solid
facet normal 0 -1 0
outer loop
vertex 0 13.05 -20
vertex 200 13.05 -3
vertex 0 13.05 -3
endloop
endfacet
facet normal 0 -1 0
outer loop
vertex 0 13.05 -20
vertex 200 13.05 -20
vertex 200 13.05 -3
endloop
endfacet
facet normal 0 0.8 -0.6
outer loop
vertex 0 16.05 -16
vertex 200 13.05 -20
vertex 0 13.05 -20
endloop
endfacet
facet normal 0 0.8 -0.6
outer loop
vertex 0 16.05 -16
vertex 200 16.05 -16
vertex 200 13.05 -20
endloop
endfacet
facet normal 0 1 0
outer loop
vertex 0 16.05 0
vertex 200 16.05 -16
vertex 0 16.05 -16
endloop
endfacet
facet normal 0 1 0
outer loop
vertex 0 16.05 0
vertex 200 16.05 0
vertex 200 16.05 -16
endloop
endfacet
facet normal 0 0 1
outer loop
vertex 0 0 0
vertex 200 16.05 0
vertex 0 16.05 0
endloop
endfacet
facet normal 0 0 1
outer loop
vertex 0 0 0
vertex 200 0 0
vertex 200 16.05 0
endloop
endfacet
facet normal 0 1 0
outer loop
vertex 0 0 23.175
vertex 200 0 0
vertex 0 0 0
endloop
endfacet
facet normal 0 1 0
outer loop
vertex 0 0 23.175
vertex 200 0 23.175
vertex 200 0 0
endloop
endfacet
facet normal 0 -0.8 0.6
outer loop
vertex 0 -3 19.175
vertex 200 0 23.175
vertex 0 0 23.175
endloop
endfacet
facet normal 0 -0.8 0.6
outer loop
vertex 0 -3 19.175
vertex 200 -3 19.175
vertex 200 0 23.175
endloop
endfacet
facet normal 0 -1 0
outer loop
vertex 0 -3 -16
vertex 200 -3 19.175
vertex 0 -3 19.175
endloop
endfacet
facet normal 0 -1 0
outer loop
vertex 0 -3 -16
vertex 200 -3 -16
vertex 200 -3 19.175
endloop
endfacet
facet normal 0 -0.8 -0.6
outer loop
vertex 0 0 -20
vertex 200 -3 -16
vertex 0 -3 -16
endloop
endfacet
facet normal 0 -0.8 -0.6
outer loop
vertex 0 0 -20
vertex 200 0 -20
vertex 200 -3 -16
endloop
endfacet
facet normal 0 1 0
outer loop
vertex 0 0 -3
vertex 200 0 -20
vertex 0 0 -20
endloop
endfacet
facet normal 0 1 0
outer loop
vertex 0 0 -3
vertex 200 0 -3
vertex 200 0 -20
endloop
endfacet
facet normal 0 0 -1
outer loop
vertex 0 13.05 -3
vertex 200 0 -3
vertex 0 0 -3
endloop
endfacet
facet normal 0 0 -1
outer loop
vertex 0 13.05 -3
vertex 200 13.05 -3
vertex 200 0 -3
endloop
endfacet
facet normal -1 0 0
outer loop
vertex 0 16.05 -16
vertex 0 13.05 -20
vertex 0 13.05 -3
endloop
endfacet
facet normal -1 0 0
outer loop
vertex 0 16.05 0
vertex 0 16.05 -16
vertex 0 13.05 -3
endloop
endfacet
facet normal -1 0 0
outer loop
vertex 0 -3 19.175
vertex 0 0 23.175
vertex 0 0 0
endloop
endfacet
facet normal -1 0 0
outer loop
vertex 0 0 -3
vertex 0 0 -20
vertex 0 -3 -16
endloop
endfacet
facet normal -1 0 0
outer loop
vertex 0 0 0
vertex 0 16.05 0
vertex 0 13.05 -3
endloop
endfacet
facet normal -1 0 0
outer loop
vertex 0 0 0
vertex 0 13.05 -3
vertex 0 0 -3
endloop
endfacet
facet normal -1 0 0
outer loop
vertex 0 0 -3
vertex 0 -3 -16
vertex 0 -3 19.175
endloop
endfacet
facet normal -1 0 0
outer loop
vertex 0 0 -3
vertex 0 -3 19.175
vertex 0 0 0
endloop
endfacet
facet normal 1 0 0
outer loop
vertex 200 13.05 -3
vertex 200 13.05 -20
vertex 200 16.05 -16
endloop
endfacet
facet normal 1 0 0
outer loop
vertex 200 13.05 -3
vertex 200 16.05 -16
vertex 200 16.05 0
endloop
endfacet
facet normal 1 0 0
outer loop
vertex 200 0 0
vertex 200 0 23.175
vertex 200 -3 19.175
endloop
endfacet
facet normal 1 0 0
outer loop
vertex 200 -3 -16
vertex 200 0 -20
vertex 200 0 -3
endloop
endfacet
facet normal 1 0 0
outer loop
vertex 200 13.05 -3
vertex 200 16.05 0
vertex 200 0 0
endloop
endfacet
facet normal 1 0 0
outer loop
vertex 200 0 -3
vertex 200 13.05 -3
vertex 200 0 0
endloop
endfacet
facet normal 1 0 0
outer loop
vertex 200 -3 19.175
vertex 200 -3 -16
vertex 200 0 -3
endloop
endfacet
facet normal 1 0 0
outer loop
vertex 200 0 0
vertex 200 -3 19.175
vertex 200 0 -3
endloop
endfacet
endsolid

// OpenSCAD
// Plywood-gap bridge clip
// Units: mm
//
// The left end clamps one 1/2 in plywood panel. Its lower rail crosses the
// 1/8 in panel gap and supports the neighboring replacement panel from below.

part_length = 200;

plywood_thickness = 12.7;  // 1/2 in
board_gap = 3.175;         // 1/8 in
fit_clearance = 0.35;

wall_thickness = 3;
capture_depth = 20;
rest_depth = 20;
edge_taper = 4;

// The lower rail sits directly under both panels. The upper rail provides the
// clearance needed to slide the clamp over the fixed plywood panel.
lower_rail_top = 0;
lower_rail_bottom = lower_rail_top - wall_thickness;
upper_rail_bottom = plywood_thickness + fit_clearance;
upper_rail_top = upper_rail_bottom + wall_thickness;
replacement_end = -(board_gap + rest_depth);

module bridge_profile() {
  union() {
    // Lower rail under the captured panel, opening toward positive x.
    polygon(points = [
      [0, lower_rail_bottom],
      [capture_depth - edge_taper, lower_rail_bottom],
      [capture_depth, lower_rail_top],
      [0, lower_rail_top]
    ]);

    // The bridge projects from the wall in the opposite direction. It crosses
    // the panel gap and supports the replacement panel from below.
    polygon(points = [
      [replacement_end, lower_rail_top],
      [replacement_end + edge_taper, lower_rail_bottom],
      [0, lower_rail_bottom],
      [0, lower_rail_top]
    ]);

    // Outside wall of the capture slot.
    translate([0, lower_rail_top])
      square([wall_thickness, upper_rail_top - lower_rail_top]);

    // Upper rail: over the fixed panel only, completing the sliding clamp.
    // The tapered inner end makes the panel edge easier to insert.
    polygon(points = [
      [0, upper_rail_bottom],
      [capture_depth, upper_rail_bottom],
      [capture_depth - edge_taper, upper_rail_top],
      [0, upper_rail_top]
    ]);
  }
}

// Extruding the sideways-h profile makes a 200 mm-long bridge.
rotate([0, 90, 0])
  linear_extrude(height = part_length)
    bridge_profile();
